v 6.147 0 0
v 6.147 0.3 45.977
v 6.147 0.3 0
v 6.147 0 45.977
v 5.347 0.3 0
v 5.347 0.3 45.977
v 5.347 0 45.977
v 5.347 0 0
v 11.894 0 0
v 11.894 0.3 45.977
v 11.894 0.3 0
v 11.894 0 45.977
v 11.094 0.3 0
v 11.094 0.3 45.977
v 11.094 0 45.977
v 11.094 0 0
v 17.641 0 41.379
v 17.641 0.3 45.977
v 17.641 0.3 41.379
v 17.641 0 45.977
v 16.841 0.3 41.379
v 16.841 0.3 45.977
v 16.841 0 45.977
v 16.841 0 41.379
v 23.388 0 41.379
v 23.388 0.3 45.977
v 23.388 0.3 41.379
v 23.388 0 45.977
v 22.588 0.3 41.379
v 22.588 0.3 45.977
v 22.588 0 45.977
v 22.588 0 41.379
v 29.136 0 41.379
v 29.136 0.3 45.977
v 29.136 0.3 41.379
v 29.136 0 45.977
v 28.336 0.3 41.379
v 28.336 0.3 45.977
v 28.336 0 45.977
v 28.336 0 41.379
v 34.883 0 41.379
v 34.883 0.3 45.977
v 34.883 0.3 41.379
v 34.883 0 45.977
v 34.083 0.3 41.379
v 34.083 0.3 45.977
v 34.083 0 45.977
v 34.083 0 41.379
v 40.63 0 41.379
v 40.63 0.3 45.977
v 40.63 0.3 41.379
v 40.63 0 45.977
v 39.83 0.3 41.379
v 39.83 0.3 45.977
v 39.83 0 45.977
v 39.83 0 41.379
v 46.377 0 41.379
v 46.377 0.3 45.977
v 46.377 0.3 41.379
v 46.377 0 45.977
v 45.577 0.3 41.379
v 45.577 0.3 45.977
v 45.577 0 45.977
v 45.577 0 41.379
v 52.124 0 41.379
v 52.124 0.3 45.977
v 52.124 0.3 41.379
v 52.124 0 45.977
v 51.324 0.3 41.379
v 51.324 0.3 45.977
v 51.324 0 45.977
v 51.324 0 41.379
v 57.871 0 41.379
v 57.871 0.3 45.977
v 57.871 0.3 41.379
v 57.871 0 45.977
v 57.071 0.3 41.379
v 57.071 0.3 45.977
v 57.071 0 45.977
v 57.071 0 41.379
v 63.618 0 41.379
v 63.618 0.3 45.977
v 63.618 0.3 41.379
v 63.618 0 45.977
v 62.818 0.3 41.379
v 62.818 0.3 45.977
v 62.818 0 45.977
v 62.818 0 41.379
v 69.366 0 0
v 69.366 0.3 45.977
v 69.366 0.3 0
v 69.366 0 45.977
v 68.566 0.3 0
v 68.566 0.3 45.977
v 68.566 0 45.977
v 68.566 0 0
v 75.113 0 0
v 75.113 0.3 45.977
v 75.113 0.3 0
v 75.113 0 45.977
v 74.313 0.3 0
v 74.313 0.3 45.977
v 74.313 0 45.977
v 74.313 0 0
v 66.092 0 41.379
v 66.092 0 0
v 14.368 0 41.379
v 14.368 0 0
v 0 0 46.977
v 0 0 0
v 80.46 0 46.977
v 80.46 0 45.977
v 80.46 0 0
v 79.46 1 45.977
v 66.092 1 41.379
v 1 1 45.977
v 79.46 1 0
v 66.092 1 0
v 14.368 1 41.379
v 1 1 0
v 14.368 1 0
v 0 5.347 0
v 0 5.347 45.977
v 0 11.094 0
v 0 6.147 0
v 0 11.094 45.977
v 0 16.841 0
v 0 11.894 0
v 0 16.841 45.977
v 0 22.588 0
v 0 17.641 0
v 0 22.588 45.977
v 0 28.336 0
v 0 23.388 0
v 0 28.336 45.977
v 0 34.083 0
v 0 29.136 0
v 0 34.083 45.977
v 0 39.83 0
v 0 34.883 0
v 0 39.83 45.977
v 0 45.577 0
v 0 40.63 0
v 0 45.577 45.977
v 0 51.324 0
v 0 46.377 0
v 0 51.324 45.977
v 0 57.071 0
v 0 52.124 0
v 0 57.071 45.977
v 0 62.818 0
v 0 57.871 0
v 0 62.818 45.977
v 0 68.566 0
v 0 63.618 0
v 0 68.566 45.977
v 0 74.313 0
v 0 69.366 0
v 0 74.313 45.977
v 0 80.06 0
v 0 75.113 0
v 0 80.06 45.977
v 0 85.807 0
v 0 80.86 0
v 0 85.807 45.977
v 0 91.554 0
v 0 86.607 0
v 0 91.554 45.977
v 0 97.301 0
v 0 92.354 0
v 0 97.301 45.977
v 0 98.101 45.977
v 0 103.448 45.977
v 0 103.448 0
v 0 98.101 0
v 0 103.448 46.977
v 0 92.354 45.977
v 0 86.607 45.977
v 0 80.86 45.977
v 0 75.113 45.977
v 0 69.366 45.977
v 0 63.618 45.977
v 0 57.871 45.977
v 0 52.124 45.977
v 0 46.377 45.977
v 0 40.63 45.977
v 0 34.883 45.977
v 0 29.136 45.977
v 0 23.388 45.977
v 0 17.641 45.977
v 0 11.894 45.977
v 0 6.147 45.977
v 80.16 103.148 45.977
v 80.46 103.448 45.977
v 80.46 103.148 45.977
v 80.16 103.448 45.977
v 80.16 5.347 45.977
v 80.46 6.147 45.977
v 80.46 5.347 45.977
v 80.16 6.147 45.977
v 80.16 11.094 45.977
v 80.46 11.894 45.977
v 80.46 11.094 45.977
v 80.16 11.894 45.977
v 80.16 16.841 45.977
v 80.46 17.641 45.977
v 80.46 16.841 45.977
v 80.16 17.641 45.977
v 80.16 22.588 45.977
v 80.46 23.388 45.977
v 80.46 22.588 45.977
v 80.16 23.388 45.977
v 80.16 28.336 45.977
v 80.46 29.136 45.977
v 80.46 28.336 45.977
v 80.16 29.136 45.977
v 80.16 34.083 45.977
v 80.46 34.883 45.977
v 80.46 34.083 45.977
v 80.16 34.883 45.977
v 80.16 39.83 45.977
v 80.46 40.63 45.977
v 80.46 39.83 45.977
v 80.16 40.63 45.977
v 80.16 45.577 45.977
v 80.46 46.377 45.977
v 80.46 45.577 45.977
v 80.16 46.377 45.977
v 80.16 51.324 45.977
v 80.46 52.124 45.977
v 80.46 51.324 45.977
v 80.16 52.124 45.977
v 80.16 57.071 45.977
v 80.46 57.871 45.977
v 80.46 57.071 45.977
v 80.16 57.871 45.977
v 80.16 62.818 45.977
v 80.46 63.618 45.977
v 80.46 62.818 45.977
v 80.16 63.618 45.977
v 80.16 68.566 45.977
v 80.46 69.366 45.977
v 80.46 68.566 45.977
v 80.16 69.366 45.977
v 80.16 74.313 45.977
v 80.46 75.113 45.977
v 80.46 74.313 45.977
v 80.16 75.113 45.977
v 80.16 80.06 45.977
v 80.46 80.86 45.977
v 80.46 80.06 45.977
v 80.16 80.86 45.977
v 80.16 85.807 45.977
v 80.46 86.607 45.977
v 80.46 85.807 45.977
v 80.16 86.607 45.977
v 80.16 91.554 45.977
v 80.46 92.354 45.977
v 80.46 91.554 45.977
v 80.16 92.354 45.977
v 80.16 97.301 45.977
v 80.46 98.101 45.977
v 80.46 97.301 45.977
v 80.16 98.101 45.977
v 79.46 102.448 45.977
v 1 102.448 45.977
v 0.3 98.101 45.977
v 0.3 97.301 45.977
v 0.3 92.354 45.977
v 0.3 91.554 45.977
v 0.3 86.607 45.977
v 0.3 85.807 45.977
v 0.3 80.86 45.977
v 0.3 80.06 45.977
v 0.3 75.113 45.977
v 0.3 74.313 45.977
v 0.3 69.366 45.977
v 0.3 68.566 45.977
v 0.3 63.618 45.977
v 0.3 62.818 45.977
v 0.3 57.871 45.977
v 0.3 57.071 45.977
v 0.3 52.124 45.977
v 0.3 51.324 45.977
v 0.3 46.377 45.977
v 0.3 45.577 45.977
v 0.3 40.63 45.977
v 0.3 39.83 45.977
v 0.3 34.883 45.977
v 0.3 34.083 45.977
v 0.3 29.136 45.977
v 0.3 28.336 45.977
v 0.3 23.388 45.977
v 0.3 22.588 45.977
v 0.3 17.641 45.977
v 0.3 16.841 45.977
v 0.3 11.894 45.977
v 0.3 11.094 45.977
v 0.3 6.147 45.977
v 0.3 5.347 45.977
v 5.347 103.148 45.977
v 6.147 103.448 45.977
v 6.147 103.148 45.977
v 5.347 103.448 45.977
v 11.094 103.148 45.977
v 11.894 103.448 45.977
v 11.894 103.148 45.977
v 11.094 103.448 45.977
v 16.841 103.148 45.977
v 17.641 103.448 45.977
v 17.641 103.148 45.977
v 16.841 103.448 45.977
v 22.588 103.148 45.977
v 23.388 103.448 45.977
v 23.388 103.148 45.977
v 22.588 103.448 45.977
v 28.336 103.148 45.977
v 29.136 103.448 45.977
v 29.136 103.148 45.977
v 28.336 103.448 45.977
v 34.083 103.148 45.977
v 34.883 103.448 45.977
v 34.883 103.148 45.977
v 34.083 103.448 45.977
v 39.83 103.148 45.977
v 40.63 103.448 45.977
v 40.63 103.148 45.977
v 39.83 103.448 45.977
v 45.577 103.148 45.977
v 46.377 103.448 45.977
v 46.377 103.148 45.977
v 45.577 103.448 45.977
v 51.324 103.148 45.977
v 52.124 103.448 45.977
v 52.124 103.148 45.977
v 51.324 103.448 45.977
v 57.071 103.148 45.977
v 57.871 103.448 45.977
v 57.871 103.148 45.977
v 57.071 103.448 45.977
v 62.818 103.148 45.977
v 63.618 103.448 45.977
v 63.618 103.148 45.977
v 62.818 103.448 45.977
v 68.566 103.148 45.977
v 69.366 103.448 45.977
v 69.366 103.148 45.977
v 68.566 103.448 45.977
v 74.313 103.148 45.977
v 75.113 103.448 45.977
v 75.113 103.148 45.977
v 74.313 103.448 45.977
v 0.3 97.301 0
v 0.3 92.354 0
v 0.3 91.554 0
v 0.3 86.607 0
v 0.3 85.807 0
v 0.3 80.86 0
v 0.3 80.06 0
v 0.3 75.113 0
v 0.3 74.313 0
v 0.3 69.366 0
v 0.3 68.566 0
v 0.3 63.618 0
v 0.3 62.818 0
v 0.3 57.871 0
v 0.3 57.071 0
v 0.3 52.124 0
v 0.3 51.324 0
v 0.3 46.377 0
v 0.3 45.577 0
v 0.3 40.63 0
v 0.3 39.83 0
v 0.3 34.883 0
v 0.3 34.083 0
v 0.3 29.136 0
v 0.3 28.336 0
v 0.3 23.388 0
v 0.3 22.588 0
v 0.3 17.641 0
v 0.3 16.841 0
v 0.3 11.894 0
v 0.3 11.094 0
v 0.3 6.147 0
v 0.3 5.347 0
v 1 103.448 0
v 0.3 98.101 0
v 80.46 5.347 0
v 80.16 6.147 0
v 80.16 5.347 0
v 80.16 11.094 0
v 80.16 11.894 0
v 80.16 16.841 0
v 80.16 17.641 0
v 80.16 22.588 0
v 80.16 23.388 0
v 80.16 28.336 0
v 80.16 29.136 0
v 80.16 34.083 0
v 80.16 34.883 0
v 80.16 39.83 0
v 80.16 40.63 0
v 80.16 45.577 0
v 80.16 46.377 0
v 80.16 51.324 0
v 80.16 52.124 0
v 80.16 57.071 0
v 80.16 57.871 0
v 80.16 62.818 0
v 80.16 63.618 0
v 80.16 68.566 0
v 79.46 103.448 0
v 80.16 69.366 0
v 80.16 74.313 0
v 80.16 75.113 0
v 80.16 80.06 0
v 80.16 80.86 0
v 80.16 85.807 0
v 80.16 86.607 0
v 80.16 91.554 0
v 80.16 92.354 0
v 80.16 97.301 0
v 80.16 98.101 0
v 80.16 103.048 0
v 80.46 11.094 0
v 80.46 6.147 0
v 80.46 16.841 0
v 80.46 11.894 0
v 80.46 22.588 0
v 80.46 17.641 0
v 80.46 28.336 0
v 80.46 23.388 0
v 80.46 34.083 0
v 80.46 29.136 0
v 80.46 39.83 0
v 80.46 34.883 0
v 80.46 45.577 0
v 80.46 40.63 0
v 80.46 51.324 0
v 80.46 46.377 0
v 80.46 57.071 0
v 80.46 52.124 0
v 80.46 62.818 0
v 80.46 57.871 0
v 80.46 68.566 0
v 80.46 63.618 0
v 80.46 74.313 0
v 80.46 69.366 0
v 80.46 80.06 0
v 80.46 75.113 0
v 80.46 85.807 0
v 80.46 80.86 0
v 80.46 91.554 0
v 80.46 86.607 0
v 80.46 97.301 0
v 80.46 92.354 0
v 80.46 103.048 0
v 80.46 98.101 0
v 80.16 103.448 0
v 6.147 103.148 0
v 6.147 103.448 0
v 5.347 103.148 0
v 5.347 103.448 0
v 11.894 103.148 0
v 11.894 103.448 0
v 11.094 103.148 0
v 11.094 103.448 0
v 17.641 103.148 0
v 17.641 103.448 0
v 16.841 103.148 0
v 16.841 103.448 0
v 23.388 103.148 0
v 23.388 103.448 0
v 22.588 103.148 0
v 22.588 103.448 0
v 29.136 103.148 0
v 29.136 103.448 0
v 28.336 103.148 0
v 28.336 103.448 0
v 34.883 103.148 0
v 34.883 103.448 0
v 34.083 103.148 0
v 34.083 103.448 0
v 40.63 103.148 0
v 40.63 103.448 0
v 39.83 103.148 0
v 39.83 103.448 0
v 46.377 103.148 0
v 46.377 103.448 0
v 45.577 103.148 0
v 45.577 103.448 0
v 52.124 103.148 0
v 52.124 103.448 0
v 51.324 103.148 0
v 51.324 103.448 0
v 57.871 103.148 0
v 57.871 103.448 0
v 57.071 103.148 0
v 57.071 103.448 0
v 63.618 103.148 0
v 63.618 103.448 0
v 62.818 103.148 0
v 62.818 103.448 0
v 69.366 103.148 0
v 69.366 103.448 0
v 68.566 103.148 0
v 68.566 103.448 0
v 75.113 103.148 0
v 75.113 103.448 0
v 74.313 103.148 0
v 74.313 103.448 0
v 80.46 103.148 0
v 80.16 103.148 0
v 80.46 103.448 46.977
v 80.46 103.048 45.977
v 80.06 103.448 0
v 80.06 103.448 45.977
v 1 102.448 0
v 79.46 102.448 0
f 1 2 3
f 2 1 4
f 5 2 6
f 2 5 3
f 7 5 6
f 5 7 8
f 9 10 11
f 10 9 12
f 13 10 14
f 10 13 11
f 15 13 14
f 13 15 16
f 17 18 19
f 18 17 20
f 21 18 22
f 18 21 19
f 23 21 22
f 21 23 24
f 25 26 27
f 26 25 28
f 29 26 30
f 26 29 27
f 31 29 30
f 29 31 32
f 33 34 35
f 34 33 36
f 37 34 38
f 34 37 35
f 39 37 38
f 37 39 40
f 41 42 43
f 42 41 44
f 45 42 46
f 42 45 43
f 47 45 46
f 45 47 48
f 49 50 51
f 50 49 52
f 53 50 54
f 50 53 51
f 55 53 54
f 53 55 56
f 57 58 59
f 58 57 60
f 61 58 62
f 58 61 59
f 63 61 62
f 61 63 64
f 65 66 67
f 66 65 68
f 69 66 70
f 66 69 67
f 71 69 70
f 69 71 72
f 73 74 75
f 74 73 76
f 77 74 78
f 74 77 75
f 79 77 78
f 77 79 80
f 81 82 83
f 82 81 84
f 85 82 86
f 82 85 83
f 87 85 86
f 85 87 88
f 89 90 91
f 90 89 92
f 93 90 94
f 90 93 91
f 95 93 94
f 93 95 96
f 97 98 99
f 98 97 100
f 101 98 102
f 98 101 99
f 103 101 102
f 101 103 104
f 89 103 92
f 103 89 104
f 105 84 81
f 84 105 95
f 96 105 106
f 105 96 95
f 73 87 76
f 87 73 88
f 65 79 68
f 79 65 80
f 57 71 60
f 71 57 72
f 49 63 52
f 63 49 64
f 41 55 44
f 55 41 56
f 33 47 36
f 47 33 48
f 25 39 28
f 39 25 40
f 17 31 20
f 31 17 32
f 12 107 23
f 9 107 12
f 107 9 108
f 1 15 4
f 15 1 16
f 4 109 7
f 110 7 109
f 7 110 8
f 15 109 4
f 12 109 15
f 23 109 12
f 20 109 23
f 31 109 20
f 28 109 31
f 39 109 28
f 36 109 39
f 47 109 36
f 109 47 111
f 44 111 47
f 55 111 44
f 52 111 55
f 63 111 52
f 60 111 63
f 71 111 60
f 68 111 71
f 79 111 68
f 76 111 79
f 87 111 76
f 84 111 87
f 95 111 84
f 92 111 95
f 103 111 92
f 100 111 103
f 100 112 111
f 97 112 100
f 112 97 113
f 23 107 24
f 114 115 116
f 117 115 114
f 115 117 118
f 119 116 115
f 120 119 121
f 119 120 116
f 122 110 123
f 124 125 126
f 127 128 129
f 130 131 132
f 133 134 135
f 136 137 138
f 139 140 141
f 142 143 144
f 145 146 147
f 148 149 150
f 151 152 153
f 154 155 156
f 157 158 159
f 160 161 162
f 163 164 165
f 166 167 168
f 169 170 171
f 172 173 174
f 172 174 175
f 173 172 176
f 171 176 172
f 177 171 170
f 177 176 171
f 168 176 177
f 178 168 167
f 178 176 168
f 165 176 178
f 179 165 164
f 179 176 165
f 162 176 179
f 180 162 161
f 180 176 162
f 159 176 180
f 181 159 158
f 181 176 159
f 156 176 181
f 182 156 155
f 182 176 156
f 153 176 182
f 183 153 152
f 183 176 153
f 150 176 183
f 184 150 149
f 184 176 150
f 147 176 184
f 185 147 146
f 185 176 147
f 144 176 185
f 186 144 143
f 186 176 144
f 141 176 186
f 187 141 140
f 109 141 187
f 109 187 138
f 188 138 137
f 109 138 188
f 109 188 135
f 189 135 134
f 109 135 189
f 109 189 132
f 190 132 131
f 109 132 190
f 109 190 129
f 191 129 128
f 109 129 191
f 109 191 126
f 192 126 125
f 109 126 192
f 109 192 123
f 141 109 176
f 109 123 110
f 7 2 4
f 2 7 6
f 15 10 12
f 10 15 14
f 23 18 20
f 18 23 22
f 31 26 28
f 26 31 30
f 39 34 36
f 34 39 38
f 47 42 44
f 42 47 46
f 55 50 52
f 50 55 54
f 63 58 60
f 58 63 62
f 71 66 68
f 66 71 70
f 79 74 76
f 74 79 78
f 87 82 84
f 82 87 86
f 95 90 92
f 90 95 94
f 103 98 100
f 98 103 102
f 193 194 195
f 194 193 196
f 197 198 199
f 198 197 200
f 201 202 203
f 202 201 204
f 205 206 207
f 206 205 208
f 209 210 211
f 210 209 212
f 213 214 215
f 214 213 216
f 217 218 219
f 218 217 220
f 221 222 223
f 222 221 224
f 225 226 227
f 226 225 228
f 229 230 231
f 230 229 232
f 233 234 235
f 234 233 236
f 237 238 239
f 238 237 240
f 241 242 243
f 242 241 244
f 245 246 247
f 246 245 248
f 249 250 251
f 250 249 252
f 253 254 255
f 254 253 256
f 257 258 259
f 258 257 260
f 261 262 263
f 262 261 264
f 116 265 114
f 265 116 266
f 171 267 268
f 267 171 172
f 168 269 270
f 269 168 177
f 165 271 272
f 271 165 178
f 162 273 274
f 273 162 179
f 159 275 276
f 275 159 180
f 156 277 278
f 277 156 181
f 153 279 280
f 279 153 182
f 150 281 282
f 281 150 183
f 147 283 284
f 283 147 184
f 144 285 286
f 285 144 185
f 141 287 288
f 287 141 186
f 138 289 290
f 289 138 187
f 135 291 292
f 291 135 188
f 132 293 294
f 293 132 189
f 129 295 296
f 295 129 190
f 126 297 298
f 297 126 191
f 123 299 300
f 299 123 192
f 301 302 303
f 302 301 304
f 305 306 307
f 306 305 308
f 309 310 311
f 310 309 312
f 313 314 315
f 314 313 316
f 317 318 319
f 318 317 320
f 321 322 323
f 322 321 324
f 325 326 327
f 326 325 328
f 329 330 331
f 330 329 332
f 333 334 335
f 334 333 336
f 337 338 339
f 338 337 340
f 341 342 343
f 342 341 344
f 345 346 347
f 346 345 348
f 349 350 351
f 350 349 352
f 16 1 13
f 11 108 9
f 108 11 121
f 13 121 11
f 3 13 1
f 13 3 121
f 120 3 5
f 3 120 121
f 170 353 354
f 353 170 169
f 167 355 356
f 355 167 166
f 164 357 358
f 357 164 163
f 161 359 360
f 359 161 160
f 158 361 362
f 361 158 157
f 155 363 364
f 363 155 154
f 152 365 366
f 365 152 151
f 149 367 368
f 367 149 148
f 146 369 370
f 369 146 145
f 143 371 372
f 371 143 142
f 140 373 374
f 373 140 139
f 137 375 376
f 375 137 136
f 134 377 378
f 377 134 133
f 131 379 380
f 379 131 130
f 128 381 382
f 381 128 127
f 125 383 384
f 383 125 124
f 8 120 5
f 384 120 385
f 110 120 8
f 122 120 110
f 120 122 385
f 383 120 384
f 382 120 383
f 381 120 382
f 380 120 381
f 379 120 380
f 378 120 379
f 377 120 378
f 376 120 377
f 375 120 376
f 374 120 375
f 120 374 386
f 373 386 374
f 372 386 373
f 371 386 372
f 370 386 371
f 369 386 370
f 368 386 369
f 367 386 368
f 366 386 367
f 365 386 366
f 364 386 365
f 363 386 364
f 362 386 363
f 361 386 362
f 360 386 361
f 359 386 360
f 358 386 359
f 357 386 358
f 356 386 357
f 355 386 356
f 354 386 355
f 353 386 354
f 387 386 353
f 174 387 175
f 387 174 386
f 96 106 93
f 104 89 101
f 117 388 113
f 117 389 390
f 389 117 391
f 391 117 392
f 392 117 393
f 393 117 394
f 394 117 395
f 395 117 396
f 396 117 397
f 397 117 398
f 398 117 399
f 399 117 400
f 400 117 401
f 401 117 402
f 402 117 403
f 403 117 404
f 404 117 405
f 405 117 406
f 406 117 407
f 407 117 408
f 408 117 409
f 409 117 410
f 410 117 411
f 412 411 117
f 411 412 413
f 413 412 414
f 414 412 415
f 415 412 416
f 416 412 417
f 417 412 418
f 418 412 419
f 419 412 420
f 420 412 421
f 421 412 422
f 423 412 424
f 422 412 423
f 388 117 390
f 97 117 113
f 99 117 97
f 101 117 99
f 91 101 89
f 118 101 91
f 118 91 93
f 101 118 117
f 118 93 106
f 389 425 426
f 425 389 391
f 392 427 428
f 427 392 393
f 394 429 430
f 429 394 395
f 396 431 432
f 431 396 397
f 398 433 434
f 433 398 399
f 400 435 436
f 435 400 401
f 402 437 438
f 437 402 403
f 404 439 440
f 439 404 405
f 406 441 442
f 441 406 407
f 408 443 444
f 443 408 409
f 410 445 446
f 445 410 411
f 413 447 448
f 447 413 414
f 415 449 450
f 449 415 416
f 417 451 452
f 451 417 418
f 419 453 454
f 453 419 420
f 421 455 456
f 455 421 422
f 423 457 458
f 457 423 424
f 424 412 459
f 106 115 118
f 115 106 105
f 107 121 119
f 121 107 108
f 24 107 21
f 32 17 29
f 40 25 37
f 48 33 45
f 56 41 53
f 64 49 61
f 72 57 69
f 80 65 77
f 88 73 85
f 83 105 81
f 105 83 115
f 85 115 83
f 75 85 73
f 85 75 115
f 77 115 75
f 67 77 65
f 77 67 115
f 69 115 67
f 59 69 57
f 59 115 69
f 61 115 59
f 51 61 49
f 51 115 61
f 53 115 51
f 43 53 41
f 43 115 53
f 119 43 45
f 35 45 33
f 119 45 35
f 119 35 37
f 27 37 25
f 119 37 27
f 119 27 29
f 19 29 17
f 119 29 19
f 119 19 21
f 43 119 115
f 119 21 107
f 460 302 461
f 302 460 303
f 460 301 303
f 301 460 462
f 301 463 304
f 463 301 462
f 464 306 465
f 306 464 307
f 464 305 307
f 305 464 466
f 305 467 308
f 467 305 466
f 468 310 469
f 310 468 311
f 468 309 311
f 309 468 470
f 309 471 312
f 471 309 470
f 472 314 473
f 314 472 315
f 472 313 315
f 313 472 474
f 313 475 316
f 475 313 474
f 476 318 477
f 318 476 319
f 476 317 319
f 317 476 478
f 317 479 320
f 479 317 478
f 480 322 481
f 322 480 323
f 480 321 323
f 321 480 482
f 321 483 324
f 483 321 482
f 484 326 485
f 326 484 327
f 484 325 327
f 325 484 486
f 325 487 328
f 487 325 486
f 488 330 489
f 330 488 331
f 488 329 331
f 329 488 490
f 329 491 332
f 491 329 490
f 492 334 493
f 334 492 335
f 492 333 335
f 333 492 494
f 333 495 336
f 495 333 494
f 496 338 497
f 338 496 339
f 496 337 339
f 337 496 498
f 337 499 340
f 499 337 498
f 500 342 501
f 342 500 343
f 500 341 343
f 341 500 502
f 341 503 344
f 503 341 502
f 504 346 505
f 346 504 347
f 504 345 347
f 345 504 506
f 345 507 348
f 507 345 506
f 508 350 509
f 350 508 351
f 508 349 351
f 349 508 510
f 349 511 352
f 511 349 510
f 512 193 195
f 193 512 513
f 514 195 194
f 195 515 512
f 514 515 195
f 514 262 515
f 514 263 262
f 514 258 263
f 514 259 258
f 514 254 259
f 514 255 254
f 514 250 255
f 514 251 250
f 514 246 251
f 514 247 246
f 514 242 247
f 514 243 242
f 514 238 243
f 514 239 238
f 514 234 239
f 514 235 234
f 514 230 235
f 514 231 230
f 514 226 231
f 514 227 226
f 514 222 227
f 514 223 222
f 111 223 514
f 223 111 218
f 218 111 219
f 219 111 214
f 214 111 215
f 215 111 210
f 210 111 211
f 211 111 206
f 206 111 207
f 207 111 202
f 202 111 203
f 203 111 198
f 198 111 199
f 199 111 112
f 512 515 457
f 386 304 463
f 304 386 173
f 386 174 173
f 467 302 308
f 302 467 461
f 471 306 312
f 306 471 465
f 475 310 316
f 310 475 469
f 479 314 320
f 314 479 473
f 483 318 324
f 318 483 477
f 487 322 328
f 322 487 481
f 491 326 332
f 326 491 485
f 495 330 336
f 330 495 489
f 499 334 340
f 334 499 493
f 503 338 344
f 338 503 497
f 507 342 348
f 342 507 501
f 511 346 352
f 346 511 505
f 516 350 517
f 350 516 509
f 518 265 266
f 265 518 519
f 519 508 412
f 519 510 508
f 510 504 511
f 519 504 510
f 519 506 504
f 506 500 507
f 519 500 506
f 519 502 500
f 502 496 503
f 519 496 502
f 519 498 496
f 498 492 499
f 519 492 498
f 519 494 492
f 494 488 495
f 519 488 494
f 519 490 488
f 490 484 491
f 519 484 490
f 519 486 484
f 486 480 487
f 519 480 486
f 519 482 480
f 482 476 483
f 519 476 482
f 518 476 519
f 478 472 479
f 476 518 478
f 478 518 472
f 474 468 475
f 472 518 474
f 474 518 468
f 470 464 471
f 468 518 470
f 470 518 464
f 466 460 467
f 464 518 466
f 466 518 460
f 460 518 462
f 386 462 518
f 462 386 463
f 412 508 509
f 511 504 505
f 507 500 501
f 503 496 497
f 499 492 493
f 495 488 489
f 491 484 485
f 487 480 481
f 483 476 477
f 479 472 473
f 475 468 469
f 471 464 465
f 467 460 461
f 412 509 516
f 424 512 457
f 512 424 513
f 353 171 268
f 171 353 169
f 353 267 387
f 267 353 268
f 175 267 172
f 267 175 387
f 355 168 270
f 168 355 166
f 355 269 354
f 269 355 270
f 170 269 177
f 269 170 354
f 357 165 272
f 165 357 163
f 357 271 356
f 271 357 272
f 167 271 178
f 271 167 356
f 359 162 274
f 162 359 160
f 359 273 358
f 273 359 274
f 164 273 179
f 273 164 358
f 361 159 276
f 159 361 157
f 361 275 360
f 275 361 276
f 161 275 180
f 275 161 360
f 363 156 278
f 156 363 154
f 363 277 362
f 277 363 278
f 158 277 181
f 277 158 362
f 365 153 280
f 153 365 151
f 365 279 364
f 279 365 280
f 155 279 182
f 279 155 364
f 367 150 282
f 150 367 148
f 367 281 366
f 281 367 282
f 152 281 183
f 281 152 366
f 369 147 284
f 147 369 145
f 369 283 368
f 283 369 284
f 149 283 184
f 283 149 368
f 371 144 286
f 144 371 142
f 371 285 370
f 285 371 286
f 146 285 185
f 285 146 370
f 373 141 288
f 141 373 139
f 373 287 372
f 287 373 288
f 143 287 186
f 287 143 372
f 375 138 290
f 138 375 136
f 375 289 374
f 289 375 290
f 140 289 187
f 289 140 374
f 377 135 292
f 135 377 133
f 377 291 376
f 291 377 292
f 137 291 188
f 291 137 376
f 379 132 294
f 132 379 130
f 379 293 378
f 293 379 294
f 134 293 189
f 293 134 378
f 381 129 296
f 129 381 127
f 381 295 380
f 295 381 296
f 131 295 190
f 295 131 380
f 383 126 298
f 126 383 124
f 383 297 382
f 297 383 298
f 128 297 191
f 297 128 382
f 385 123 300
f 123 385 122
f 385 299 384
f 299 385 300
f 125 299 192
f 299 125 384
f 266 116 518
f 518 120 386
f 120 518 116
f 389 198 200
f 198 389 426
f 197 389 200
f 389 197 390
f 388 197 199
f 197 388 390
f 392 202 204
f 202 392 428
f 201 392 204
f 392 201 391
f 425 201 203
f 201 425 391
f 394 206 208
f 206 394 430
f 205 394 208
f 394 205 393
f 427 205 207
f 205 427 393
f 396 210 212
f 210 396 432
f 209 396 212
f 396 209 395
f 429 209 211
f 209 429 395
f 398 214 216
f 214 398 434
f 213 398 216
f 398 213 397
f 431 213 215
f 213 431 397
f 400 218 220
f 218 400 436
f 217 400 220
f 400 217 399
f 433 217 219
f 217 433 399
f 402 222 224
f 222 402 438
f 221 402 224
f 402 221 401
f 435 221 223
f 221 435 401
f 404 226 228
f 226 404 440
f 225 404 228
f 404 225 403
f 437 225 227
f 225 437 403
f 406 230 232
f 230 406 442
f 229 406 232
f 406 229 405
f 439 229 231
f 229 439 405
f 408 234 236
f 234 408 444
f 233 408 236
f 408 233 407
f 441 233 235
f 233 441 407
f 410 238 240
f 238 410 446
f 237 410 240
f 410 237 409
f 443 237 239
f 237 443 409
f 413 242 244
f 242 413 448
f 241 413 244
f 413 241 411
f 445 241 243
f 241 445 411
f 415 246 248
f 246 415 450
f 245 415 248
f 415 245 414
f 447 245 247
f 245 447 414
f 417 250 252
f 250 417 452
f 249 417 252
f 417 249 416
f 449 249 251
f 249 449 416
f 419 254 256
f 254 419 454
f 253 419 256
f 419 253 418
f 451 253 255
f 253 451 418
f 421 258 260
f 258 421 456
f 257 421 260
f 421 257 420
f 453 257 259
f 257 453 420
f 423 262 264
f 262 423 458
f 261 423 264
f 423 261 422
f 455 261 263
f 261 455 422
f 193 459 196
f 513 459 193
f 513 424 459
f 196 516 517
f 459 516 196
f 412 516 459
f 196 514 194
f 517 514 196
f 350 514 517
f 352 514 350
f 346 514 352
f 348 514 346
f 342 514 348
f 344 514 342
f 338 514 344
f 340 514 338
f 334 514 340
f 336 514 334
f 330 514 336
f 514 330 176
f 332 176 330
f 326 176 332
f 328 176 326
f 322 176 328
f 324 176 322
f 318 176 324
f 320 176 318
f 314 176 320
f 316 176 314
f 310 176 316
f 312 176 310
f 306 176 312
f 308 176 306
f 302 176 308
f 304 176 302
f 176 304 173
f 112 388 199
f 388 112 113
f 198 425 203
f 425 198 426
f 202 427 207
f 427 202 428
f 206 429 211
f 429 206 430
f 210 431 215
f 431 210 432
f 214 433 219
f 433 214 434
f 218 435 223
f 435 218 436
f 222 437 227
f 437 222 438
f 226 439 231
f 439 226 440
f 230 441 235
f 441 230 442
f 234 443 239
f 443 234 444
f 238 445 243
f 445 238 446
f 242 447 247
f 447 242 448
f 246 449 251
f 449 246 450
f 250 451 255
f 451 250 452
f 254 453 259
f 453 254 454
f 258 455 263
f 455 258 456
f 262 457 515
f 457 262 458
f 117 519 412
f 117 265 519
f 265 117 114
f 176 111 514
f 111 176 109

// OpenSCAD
// file: police_station_cs_garage_roof.scad
/*
 * PROMPT: Roof panel of the Cities-Skylines-style police station garage annex in H0
 * scale (1:87). Plain flat metal panel sized to cover the garage footprint.
 * Flat 1 mm panel, exterior face up.
 */

$fn = 32;
S = 1/87;
panel_t = 1.0;

annex_w_real = 7000;
annex_d_real = 9000;

annex_w = annex_w_real * S;
annex_d = annex_d_real * S;

module garage_roof() {
    cube([annex_w, annex_d, panel_t]);
}

garage_roof();
// file: police_station_cs_garage_wall_right.scad
/*
 * PROMPT: Right side wall panel of the Cities-Skylines-style police station garage
 * annex in H0 scale (1:87). Plain facade with vertical siding grooves on exterior
 * face. Flat 1 mm panel, exterior face up.
 */

$fn = 32;
S = 1/87;
panel_t = 1.0;

annex_d_real  = 9000;
annex_h_real  = 4000;
siding_p_real = 500;
siding_w      = 0.8;
siding_d      = 0.3;

annex_d  = annex_d_real * S;
annex_h  = annex_h_real * S;
siding_p = siding_p_real * S;

module garage_wall_right() {
    difference() {
        cube([annex_d, annex_h, panel_t]);

        // vertical siding grooves on exterior face
        for (i = [1 : floor(annex_d / siding_p)]) {
            gx = i * siding_p - siding_w/2;
            translate([gx, -1, panel_t - siding_d])
                cube([siding_w, annex_h+2, siding_d+1]);
        }
    }
}

garage_wall_right();
// file: police_station_cs_garage_wall_left.scad
/*
 * PROMPT: Left side wall panel of the Cities-Skylines-style police station garage
 * annex in H0 scale (1:87). Plain facade with vertical siding grooves on exterior
 * face. Flat 1 mm panel, exterior face up.
 */

$fn = 32;
S = 1/87;
panel_t = 1.0;

annex_d_real  = 9000;
annex_h_real  = 4000;
siding_p_real = 500;
siding_w      = 0.8;
siding_d      = 0.3;

annex_d  = annex_d_real * S;
annex_h  = annex_h_real * S;
siding_p = siding_p_real * S;

module garage_wall_left() {
    difference() {
        cube([annex_d, annex_h, panel_t]);

        // vertical siding grooves on exterior face
        for (i = [1 : floor(annex_d / siding_p)]) {
            gx = i * siding_p - siding_w/2;
            translate([gx, -1, panel_t - siding_d])
                cube([siding_w, annex_h+2, siding_d+1]);
        }
    }
}

garage_wall_left();
// file: police_station_cs_garage_wall_back.scad
/*
 * PROMPT: Back wall panel of the Cities-Skylines-style police station garage annex
 * in H0 scale (1:87). Plain facade with vertical siding grooves on exterior face.
 * Flat 1 mm panel, exterior face up.
 */

$fn = 32;
S = 1/87;
panel_t = 1.0;

annex_w_real  = 7000;
annex_h_real  = 4000;
siding_p_real = 500;
siding_w      = 0.8;
siding_d      = 0.3;

annex_w  = annex_w_real * S;
annex_h  = annex_h_real * S;
siding_p = siding_p_real * S;

module garage_wall_back() {
    difference() {
        cube([annex_w, annex_h, panel_t]);

        // vertical siding grooves on exterior face
        for (i = [1 : floor(annex_w / siding_p)]) {
            gx = i * siding_p - siding_w/2;
            translate([gx, -1, panel_t - siding_d])
                cube([siding_w, annex_h+2, siding_d+1]);
        }
    }
}

garage_wall_back();
// file: police_station_cs_garage_wall_front.scad
/*
 * PROMPT: Front wall panel of the Cities-Skylines-style police station garage annex
 * in H0 scale (1:87). Large vehicle bay opening centred on the facade, vertical siding
 * grooves on exterior face. Flat 1 mm panel, exterior face up.
 */

$fn = 32;
S = 1/87;
panel_t = 1.0;

annex_w_real  = 7000;
annex_h_real  = 4000;
garage_w_real = 4500;
garage_h_real = 3600;
siding_p_real = 500;
siding_w      = 0.8;
siding_d      = 0.3;

annex_w  = annex_w_real * S;
annex_h  = annex_h_real * S;
garage_w = garage_w_real * S;
garage_h = garage_h_real * S;
siding_p = siding_p_real * S;

module garage_wall_front() {
    difference() {
        cube([annex_w, annex_h, panel_t]);

        // vehicle bay opening centred on facade
        translate([(annex_w - garage_w)/2, 0, -1])
            cube([garage_w, garage_h, panel_t+2]);

        // vertical siding grooves on exterior face
        for (i = [1 : floor(annex_w / siding_p)]) {
            gx = i * siding_p - siding_w/2;
            translate([gx, -1, panel_t - siding_d])
                cube([siding_w, annex_h+2, siding_d+1]);
        }
    }
}

garage_wall_front();
// main file
/*
 * PROMPT: Assembly of the Cities-Skylines-style police station garage annex in H0
 * scale (1:87). Positions all four wall panels and the roof panel in their correct
 * assembled locations. For visualization and GitHub preview only — not for printing.
 */

use <police_station_cs_garage_wall_front.scad>
use <police_station_cs_garage_wall_back.scad>
use <police_station_cs_garage_wall_left.scad>
use <police_station_cs_garage_wall_right.scad>
use <police_station_cs_garage_roof.scad>

$fn = 32;
S       = 1/87;
panel_t = 1.0;
annex_w = 7000 * S;
annex_d = 9000 * S;
annex_h = 4000 * S;

// Front wall — exterior at Y=0
translate([0, panel_t, 0])
    rotate([90, 0, 0])
        garage_wall_front();

// Back wall — exterior at Y=annex_d
translate([0, annex_d - panel_t, annex_h])
    rotate([-90, 0, 0])
        garage_wall_back();

// Left wall — exterior at X=0
translate([panel_t, annex_d, 0])
    rotate([0, 0, -90])
        rotate([90, 0, 0])
            garage_wall_left();

// Right wall — exterior at X=annex_w
translate([annex_w - panel_t, 0, 0])
    rotate([0, 0, 90])
        rotate([90, 0, 0])
            garage_wall_right();

// Roof — sits flush at Z=annex_h
translate([0, 0, annex_h])
    garage_roof();
